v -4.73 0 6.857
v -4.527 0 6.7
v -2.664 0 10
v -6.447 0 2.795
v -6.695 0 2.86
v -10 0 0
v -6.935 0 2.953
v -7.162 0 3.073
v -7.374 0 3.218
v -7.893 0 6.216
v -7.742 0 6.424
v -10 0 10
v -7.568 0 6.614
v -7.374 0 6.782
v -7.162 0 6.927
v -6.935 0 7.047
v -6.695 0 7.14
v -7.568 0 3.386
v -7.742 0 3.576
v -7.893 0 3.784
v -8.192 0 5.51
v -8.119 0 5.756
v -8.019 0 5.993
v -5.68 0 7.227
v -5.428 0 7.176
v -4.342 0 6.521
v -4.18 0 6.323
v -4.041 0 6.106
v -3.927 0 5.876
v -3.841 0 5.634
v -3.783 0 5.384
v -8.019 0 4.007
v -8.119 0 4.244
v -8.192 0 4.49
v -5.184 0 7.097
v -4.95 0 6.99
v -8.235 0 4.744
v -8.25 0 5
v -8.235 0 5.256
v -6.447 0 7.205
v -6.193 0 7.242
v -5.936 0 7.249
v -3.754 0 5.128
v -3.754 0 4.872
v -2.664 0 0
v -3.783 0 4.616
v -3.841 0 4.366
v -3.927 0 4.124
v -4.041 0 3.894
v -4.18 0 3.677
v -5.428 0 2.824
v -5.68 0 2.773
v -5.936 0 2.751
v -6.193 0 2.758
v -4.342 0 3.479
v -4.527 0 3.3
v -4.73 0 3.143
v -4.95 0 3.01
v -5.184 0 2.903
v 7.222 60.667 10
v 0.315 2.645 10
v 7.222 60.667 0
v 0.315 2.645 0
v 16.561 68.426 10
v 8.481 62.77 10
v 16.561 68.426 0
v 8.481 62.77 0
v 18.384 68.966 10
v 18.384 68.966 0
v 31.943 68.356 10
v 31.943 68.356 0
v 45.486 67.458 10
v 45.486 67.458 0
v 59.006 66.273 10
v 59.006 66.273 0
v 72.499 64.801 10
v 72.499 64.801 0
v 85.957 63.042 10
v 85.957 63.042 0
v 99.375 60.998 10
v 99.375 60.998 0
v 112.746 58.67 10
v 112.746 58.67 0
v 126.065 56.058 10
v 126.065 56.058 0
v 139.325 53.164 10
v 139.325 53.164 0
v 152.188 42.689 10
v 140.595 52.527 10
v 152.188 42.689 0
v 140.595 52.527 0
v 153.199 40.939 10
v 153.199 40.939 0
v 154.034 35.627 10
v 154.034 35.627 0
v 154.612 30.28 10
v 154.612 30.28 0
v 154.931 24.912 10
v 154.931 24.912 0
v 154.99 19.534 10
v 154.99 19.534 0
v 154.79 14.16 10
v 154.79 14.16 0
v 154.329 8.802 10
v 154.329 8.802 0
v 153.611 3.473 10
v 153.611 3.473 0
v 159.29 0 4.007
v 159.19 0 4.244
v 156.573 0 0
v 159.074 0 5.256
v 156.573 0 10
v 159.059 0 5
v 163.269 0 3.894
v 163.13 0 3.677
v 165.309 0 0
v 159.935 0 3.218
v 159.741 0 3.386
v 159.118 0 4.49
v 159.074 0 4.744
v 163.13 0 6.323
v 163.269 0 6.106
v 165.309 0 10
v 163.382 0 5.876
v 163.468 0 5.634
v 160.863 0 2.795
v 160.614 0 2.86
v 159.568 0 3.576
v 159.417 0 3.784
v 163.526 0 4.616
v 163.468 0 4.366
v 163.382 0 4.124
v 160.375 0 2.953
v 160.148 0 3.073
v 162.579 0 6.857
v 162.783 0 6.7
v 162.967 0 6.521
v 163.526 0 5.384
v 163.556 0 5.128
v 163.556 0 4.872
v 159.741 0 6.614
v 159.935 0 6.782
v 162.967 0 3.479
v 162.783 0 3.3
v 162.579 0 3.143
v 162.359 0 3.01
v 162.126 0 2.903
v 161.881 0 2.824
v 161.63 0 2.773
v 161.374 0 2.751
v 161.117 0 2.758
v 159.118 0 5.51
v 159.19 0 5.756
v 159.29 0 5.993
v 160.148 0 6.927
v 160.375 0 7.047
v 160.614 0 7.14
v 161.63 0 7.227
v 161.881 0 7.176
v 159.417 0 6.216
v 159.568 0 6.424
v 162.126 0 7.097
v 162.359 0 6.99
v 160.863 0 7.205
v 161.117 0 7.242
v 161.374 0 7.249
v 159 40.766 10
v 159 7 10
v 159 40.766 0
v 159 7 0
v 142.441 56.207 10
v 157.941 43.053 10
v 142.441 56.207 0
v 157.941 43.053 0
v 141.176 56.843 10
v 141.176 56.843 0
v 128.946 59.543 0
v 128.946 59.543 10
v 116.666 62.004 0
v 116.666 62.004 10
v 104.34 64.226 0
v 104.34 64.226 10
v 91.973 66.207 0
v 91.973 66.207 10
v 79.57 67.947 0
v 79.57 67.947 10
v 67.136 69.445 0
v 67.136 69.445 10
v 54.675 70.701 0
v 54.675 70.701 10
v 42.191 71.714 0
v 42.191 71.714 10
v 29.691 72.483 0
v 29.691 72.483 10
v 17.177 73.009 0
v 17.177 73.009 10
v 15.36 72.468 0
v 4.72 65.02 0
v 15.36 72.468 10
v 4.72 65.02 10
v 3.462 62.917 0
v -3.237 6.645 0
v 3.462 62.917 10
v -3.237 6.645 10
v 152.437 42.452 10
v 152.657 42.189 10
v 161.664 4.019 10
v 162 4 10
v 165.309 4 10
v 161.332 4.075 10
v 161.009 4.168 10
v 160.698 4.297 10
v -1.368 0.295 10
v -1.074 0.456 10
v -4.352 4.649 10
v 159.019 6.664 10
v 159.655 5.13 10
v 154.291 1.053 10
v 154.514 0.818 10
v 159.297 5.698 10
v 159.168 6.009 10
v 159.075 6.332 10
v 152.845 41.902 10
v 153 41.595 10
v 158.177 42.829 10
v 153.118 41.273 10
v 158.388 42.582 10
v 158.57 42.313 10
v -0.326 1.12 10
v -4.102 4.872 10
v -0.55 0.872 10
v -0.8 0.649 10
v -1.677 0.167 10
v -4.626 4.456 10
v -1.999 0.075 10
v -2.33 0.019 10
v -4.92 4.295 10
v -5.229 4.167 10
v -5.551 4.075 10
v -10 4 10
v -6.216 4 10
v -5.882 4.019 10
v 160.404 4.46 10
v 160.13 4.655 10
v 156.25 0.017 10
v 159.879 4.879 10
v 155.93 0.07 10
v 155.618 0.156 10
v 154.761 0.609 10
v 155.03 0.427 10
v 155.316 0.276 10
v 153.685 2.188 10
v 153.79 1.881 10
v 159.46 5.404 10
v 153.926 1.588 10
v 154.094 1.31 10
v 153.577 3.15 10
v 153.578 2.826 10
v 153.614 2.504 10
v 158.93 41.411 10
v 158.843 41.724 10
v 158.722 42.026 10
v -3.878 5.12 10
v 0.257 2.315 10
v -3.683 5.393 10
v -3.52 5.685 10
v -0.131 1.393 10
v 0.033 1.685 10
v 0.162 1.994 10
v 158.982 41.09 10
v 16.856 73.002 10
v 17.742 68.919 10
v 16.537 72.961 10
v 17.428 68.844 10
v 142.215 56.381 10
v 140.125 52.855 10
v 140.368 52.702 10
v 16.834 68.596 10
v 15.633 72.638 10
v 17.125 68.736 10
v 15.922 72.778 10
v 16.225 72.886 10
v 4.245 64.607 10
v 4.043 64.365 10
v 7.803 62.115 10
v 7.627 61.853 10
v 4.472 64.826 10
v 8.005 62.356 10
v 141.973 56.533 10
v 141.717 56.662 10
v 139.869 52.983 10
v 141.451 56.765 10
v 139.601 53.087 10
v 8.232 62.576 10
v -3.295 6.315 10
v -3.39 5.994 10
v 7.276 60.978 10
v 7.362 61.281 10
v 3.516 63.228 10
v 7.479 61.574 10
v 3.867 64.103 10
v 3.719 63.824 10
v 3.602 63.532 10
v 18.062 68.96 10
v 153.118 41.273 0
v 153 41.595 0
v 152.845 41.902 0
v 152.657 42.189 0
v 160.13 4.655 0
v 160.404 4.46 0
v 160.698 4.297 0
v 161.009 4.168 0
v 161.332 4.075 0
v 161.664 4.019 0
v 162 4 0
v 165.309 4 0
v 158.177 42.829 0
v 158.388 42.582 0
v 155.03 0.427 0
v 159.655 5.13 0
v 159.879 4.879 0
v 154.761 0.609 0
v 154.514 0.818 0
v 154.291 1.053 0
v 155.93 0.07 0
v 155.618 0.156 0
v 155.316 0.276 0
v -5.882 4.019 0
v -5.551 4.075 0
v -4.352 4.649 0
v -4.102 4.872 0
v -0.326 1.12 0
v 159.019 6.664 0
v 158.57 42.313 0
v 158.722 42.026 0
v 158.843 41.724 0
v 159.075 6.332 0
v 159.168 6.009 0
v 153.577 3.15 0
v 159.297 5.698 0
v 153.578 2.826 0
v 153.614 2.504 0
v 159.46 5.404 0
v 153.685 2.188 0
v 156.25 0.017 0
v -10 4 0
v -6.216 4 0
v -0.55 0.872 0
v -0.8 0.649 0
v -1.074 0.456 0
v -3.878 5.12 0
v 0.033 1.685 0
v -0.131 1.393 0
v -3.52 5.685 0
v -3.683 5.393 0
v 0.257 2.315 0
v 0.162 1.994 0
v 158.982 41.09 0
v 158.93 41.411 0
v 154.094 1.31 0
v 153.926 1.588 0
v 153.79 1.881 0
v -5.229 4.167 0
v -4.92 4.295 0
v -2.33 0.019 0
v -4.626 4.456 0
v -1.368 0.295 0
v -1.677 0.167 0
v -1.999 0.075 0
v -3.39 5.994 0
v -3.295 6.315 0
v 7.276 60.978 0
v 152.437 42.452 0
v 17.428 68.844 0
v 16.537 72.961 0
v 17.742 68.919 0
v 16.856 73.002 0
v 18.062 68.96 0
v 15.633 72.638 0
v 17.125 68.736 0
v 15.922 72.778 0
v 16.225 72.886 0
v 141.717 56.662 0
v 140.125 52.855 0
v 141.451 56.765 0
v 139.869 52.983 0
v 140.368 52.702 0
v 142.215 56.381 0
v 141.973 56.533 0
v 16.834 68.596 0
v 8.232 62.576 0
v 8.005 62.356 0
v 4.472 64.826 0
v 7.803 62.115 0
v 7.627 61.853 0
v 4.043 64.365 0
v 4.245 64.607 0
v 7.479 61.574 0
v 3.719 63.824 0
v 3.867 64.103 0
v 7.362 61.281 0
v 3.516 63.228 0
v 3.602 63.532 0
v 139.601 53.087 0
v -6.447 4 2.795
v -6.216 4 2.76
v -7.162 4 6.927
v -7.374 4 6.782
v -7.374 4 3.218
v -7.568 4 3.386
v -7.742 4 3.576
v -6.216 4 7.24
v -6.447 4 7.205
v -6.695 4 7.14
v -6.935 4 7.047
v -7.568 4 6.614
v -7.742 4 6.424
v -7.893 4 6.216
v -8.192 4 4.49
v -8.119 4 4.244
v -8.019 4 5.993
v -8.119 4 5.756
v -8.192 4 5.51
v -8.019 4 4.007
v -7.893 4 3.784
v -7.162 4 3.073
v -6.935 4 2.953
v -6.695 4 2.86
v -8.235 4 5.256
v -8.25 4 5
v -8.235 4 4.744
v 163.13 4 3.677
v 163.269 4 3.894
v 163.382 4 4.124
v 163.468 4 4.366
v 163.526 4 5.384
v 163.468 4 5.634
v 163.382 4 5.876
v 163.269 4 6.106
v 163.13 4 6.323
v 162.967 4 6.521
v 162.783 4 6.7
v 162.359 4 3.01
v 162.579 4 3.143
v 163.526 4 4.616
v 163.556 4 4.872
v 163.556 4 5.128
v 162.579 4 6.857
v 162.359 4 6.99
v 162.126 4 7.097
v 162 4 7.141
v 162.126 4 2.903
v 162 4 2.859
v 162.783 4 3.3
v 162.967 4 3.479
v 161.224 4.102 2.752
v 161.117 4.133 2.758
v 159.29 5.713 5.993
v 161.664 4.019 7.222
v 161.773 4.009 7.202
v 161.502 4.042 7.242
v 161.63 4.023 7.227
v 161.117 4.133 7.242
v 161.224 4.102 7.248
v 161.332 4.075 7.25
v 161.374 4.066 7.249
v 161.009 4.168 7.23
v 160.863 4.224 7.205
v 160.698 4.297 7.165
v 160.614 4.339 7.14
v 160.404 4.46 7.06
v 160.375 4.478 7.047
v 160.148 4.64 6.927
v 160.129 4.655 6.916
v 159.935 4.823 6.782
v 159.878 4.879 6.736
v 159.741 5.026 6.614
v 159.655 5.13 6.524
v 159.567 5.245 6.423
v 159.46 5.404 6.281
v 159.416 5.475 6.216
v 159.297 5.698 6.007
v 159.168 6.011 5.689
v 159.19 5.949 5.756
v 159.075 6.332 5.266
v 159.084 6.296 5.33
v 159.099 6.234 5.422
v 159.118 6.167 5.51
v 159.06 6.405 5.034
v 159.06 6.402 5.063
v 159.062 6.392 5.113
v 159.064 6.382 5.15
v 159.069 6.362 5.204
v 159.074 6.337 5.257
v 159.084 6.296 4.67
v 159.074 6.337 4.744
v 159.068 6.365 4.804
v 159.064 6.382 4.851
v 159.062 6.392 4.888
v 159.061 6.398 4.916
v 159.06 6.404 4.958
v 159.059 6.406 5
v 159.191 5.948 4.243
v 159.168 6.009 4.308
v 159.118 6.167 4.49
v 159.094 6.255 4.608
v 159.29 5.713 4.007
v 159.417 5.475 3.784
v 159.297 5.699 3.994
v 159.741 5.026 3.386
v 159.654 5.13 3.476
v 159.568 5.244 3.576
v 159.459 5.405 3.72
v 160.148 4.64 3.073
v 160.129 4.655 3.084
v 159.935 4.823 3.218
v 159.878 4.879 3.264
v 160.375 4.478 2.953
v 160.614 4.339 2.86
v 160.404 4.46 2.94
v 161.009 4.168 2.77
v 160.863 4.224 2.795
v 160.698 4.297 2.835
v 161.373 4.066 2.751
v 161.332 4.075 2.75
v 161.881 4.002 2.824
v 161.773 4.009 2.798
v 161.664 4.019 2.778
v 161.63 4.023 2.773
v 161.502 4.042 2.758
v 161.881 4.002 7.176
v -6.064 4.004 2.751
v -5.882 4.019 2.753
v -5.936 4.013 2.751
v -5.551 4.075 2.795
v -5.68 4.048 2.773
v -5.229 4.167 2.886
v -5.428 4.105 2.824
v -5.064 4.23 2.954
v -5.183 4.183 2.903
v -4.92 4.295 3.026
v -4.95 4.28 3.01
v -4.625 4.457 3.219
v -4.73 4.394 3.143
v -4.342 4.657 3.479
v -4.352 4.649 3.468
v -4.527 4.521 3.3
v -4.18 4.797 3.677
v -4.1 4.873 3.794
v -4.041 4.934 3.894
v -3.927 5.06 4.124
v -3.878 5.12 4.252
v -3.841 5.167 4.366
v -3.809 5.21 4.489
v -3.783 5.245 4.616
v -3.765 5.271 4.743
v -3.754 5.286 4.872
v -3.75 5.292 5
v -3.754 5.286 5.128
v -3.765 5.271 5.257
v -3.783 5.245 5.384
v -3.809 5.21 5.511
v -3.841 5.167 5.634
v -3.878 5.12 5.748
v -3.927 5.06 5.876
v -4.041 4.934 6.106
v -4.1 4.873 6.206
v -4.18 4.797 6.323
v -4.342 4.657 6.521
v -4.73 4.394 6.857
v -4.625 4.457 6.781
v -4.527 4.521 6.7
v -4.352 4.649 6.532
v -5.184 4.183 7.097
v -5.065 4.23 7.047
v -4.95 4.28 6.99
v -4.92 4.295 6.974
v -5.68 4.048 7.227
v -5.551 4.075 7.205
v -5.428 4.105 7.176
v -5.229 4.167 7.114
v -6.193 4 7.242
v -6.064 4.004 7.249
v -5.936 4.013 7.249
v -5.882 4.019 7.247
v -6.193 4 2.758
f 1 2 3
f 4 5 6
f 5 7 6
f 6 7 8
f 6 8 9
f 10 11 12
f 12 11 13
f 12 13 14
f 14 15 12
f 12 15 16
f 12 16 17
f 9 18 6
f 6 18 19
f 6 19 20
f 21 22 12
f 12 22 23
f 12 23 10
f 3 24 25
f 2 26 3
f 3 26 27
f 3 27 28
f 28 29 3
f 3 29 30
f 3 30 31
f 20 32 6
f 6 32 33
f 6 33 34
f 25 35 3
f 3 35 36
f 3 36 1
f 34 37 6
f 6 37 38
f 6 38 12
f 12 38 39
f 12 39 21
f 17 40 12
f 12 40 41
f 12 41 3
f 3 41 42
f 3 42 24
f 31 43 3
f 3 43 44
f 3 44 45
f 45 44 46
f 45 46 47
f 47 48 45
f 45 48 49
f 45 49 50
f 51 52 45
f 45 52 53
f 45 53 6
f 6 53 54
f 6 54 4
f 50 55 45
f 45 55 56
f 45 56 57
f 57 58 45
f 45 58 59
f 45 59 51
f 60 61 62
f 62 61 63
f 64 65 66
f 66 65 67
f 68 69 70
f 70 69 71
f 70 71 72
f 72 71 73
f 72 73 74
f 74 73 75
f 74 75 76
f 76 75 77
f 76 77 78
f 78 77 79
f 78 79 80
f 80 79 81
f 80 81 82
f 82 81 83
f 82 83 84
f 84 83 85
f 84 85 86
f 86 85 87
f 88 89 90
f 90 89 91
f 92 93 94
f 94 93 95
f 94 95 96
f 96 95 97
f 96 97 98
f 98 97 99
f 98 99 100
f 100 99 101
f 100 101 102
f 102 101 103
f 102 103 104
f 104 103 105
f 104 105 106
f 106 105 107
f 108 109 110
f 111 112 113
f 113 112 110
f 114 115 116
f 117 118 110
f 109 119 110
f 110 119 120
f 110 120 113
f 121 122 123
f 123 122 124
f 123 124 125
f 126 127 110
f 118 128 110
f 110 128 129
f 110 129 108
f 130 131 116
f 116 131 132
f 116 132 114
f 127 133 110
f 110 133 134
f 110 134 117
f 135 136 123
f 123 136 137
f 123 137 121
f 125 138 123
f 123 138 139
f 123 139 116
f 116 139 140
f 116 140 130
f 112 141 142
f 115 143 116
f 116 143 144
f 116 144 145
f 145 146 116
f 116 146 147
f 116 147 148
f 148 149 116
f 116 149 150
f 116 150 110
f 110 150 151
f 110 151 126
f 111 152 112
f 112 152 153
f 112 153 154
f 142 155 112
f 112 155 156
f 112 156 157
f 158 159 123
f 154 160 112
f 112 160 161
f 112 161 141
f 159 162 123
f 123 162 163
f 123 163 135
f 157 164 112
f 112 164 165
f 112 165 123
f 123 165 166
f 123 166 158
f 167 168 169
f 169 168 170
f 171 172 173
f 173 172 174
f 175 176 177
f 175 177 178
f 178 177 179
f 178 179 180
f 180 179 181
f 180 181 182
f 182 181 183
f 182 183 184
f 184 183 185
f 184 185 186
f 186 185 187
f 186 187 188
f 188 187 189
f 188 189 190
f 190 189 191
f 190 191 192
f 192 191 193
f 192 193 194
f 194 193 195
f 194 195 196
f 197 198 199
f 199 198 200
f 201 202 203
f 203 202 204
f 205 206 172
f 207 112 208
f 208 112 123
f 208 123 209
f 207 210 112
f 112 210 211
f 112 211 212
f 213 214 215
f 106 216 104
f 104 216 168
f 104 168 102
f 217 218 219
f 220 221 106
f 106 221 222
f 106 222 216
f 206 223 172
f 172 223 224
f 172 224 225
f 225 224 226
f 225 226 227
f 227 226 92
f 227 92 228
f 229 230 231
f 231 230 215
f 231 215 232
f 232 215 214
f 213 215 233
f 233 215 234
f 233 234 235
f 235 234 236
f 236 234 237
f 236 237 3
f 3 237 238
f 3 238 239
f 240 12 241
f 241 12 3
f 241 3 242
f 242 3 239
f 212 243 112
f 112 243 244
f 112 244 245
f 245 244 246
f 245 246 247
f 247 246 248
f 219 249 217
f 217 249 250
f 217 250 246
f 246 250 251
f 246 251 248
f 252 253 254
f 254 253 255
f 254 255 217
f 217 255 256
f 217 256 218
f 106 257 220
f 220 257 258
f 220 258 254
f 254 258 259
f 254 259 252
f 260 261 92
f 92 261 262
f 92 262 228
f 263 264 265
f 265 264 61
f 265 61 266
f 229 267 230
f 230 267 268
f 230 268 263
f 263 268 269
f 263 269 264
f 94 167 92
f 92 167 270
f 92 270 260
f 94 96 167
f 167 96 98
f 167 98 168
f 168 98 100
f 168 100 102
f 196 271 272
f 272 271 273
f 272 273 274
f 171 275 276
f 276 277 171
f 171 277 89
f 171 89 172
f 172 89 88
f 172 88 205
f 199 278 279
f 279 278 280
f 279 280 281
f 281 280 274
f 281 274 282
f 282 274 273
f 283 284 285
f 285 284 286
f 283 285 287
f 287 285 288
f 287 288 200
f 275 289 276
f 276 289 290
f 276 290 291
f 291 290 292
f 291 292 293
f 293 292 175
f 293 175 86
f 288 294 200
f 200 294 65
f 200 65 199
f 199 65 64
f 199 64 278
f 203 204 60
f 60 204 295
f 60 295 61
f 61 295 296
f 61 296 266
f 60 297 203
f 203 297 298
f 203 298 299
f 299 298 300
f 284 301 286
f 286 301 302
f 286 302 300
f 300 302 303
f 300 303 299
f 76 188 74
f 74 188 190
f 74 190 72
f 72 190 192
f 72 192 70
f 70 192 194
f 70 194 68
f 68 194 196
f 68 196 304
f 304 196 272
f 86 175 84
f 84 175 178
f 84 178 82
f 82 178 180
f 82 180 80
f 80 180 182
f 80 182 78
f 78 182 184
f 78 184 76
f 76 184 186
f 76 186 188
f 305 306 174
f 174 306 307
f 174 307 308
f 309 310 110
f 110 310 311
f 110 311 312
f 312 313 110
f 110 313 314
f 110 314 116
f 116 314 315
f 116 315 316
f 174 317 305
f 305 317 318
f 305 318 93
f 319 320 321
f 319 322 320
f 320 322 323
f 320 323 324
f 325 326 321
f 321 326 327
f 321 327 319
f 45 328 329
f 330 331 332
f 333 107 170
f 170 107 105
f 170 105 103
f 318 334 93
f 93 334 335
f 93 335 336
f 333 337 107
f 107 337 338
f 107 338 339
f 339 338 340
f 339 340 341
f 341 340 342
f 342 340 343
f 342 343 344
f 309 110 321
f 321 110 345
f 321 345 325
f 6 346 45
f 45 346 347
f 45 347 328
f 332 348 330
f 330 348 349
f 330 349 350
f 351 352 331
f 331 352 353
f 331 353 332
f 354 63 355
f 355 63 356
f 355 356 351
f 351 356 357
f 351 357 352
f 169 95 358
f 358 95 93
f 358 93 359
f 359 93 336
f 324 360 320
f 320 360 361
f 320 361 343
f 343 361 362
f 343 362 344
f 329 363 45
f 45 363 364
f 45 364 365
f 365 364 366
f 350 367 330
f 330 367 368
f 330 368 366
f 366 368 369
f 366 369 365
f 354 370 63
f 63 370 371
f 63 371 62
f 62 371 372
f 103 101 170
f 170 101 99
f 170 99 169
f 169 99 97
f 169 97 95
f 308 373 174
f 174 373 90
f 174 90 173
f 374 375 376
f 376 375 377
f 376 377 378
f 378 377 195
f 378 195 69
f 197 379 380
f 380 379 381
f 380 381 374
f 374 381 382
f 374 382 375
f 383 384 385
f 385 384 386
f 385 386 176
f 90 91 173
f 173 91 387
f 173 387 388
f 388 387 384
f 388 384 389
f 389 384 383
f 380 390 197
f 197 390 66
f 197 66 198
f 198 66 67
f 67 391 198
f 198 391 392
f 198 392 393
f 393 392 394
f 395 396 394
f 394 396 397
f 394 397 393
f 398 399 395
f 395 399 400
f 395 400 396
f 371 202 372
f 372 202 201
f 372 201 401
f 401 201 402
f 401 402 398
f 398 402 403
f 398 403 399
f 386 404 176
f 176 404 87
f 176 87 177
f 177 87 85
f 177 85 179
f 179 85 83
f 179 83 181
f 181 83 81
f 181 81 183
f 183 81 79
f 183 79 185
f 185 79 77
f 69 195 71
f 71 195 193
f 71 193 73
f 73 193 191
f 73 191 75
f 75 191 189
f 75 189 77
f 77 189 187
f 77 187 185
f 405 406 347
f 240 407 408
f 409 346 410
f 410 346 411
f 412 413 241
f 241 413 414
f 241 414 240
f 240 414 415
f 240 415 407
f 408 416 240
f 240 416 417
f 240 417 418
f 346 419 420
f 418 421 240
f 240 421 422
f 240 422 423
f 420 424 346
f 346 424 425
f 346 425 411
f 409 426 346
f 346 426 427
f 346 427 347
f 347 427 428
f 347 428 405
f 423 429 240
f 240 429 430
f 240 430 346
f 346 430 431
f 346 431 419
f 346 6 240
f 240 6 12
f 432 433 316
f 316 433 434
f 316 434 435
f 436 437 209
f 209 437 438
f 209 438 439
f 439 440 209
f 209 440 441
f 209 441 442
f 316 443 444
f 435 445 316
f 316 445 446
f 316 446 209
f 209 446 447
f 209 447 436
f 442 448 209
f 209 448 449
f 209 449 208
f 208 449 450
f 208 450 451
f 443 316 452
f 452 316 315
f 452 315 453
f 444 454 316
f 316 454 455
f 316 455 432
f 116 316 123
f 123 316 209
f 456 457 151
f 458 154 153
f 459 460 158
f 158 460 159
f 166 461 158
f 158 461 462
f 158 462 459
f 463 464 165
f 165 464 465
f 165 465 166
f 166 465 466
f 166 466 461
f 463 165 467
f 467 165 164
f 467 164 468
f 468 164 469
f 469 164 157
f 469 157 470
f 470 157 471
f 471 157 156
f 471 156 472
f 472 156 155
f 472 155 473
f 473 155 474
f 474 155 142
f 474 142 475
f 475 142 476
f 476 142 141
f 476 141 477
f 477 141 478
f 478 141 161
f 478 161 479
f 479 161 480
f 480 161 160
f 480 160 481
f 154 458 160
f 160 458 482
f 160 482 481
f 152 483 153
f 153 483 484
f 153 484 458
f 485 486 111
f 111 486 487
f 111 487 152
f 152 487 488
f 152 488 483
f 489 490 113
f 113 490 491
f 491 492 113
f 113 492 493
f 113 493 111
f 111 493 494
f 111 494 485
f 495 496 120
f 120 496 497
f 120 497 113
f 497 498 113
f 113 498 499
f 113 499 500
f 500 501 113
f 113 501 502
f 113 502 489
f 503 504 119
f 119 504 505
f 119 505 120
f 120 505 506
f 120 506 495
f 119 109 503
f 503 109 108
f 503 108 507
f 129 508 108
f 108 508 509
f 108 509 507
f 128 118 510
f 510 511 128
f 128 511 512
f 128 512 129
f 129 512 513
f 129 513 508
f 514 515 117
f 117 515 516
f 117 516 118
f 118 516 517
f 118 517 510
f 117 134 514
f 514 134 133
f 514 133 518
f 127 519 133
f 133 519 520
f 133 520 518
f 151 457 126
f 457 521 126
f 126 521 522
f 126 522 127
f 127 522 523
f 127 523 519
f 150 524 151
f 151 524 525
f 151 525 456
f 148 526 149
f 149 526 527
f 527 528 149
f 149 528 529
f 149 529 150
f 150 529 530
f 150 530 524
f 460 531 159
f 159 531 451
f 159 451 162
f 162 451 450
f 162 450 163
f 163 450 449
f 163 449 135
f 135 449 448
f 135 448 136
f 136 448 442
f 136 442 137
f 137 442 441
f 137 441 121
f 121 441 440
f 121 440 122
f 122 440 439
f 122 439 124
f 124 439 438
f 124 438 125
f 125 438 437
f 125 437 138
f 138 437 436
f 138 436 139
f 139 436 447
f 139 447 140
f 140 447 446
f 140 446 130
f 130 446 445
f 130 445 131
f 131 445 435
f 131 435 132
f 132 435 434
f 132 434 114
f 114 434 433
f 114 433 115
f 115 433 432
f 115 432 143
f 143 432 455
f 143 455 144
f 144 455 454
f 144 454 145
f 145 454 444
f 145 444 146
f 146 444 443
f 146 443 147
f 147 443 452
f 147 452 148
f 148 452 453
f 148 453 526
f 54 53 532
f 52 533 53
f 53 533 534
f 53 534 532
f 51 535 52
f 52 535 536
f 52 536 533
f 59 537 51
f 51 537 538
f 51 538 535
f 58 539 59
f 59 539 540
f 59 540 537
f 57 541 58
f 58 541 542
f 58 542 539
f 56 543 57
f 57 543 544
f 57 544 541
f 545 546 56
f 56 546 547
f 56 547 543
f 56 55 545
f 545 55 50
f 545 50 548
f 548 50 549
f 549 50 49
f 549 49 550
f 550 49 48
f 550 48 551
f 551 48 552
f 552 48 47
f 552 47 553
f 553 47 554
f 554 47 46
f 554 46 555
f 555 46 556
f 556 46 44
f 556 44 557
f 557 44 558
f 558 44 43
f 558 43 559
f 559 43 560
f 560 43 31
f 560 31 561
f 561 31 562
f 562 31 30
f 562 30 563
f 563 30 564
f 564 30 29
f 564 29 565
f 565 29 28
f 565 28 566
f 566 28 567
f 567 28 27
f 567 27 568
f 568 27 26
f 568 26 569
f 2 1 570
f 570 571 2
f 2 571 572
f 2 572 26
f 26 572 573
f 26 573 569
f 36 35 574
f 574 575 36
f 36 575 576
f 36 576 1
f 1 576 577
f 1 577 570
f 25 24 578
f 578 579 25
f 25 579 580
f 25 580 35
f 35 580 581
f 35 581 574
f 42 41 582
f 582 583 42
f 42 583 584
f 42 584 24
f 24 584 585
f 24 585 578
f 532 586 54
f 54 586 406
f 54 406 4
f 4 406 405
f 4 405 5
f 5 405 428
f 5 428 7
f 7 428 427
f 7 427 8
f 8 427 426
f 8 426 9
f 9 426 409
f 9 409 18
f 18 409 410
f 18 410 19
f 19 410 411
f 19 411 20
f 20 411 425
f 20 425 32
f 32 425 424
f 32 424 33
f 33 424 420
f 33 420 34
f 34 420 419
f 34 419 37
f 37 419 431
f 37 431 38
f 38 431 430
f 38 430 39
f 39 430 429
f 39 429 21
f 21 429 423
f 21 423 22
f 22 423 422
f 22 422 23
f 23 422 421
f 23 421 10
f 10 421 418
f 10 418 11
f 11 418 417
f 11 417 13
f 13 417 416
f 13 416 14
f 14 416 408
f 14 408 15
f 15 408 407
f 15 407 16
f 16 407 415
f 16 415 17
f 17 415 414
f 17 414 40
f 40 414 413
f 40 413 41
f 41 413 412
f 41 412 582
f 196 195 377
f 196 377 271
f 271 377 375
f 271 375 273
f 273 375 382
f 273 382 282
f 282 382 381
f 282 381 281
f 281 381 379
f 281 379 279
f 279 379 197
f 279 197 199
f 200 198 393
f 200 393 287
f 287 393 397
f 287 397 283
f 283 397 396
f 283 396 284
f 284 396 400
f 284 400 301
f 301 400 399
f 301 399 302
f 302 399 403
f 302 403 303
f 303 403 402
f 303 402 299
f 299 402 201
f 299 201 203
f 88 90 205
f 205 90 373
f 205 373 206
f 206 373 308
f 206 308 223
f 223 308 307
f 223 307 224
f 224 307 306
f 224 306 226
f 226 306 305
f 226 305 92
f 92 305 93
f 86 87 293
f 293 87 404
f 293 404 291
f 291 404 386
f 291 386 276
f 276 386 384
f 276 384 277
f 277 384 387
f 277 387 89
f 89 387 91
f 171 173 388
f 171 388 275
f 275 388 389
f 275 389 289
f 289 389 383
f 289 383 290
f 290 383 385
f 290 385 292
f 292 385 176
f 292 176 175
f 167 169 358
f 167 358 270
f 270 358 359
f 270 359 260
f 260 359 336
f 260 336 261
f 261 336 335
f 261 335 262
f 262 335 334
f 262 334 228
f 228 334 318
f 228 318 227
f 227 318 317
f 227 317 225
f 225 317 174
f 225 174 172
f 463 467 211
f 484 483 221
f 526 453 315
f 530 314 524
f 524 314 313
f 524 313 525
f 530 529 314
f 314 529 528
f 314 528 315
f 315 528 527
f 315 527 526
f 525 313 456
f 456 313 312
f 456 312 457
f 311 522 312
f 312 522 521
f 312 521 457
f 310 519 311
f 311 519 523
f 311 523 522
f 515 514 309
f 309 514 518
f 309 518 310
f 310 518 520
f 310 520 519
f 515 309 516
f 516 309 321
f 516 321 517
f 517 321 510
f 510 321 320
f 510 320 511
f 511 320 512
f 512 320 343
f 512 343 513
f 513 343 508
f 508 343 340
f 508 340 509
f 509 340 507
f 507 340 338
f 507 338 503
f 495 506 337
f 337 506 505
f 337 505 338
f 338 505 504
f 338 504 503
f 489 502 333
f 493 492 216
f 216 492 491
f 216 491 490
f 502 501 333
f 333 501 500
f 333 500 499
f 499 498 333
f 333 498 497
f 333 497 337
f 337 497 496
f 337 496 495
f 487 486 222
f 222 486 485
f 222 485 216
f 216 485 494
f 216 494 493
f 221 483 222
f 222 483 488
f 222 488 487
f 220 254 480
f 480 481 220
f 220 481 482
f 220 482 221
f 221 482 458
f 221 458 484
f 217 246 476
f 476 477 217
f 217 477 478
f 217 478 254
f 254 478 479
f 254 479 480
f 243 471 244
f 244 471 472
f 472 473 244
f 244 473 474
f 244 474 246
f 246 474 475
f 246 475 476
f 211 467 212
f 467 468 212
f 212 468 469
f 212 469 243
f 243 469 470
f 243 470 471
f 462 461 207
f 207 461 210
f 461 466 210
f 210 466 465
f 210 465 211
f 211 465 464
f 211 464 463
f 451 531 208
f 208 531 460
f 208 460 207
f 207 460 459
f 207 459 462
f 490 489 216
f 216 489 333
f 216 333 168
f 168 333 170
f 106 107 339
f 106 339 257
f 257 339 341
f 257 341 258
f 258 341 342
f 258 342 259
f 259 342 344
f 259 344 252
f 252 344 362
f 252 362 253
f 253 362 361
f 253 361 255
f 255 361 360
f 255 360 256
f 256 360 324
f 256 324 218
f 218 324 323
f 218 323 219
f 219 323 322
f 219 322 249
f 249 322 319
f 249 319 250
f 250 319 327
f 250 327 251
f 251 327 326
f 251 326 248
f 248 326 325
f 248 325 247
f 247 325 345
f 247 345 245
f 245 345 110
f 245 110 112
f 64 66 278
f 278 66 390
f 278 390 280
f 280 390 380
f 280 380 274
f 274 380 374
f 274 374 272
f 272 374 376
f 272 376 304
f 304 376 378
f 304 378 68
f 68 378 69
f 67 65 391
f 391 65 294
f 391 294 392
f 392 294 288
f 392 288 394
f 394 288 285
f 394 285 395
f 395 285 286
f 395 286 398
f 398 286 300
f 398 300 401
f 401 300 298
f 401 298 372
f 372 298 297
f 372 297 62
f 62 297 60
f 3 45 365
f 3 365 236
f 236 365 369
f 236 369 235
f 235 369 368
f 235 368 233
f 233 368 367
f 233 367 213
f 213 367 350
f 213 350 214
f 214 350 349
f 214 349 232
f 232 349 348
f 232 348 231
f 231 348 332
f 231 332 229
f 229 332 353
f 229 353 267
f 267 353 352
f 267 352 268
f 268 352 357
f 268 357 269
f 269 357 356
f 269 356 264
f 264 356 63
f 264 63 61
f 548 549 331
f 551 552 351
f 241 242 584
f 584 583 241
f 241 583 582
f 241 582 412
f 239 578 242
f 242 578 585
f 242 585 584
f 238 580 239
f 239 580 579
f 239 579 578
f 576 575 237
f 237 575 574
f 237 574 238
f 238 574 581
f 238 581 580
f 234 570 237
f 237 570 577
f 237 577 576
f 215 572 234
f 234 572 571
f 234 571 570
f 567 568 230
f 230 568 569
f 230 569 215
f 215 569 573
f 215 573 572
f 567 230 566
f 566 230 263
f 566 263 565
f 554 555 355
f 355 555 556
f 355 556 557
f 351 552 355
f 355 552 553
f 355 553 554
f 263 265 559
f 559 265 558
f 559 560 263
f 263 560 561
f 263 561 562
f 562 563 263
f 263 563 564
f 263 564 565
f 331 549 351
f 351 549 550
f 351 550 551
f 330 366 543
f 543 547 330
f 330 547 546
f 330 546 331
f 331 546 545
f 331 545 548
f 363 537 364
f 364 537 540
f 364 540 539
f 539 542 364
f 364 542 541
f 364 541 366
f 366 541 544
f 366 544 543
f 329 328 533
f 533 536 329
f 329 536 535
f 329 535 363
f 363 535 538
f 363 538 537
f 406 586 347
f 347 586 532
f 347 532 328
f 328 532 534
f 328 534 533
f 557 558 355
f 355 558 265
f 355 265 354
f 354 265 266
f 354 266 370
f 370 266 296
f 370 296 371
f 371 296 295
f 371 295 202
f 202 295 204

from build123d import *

# Parameters (mm, degrees)
BOSS_EXTRU_1_DEPTH           = 10
ESQUISSE2_W                  = 10
ESQUISSE2_H                  = 4
BOSS_EXTRU_2_DEPTH           = 10
ENL_V_MAT_EXTRU_1_DEPTH      = 180.426169252
ENL_V_MAT_EXTRU_1_DEPTH_BACK = 180.426169252
ESQUISSE3_R                  = 2.25
CONG_1_START                 = -1
CONG_1_DEPTH                 = 12
CONG_1_START_2               = 7.2500001
CONG_1_2_DEPTH               = 2.7499999
CONG_1_3_DEPTH               = 2.749998557
CONG_1_START_3               = 1.0274
CONG_1_4_DEPTH               = 7.9164
CONG_1_START_4               = 2.749998557
CONG_1_5_DEPTH               = 4.500001543
CONG_1_START_5               = 4
CONG_1_6_OUTLINE_R           = 2.25
CONG_1_6_DEPTH               = 2.645361331


with BuildPart() as part:
    # Esquisse1 → Boss.-Extru.1 (new body)
    with BuildSketch(Plane.XY):
        with BuildLine():
            Line((0, 0), (7.380952381, 62))
            Line((7.380952381, 62), (17.380952381, 69))
            ThreePointArc((17.380952381, 69), (79.097781351, 63.974797541), (140.038518603, 53))
            Line((140.038518603, 53), (153, 42))
            ThreePointArc((153, 42), (155, 21), (153, 0))
            Line((153, 0), (159, 0))
            Line((159, 0), (159, 42.15430335))
            Line((159, 42.15430335), (156.65156229, 44.147348282))
            Line((156.65156229, 44.147348282), (141.886380642, 56.678091733))
            ThreePointArc((141.886380642, 56.678091733), (79.436142512, 67.964522606), (16.177522156, 73.040221089))
            Line((16.177522156, 73.040221089), (3.620610131, 64.250382671))
            Line((3.620610131, 64.250382671), (-3.971953097, 0.472851559))
            Line((-3.971953097, 0.472851559), (-3.971953097, 0))
            Line((-3.971953097, 0), (0, 0))
        make_face()
    extrude(amount=BOSS_EXTRU_1_DEPTH)

    # Esquisse2 → Boss.-Extru.2 (add)
    with BuildSketch(Plane.XY.offset(10)):
        with Locations((-5, 2)):
            Rectangle(ESQUISSE2_W, ESQUISSE2_H)
        Polygon((155.309401077, 4), (153, 0), (165.309401077, 0), (165.309401077, 4), align=None)
    extrude(amount=-BOSS_EXTRU_2_DEPTH)

    # Esquisse3 → Enlèv. mat.-Extru.1 (cut, two sides: drawn at the far end of the back side and taken through both)
    with BuildSketch(Plane(origin=(0, 4, 0), x_dir=(1, 0, 0), z_dir=(0, 1, 0)).offset(-ENL_V_MAT_EXTRU_1_DEPTH_BACK)):
        with Locations(Location((-6, -5, 0), (0, 0, 180))):
            Circle(ESQUISSE3_R)
        with Locations(Location((161.309401077, -5, 0), (0, 0, 180))):
            Circle(ESQUISSE3_R)
    extrude(amount=ENL_V_MAT_EXTRU_1_DEPTH + ENL_V_MAT_EXTRU_1_DEPTH_BACK, mode=Mode.SUBTRACT)

    # Congé1: read off the stored shape, not the designer's step
    # Congé1 outline → Congé1 (cut)
    with BuildSketch(Plane.XY.offset(CONG_1_START)):
        with BuildLine():
            Line((16.177522156, 73.040221089), (15.360062357, 72.46799923))
            ThreePointArc((15.360062357, 72.46799923), (16.22479158, 72.885690349), (17.177199346, 73.00874297))
            ThreePointArc((17.177199346, 73.00874297), (16.677366871, 73.02467639), (16.177522156, 73.040221089))
        make_face()
        with BuildLine():
            ThreePointArc((3.461901996, 62.917234337), (3.866631155, 64.103151006), (4.720479785, 65.020291429))
            Line((4.720479785, 65.020291429), (3.620610131, 64.250382671))
            Line((3.620610131, 64.250382671), (3.461901996, 62.917234337))
        make_face()
        with BuildLine():
            Line((159, 42.15430335), (157.941176471, 43.052893447))
            ThreePointArc((157.941176471, 43.052893447), (158.722455639, 42.025825276), (159, 40.7655732))
            Line((159, 40.7655732), (159, 42.15430335))
        make_face()
        with BuildLine():
            ThreePointArc((141.886380642, 56.678091733), (141.530964579, 56.760515154), (141.175501808, 56.842736905))
            ThreePointArc((141.175501808, 56.842736905), (141.846525936, 56.600679011), (142.441431075, 56.207037956))
            Line((142.441431075, 56.207037956), (141.886380642, 56.678091733))
        make_face()
        with BuildLine():
            Line((0, 0), (0.314923968, 2.645361331))
            ThreePointArc((0.314923968, 2.645361331), (-0.672046378, 0.756797378), (-2.664040855, 0))
            Line((-2.664040855, 0), (0, 0))
        make_face()
        with BuildLine():
            ThreePointArc((156.573147005, 0), (154.290829859, 1.052943646), (153.610613604, 3.472647702))
            ThreePointArc((153.610613604, 3.472647702), (153.319065292, 1.733904625), (153, 0))
            Line((153, 0), (156.573147005, 0))
        make_face()
    extrude(amount=CONG_1_DEPTH, mode=Mode.SUBTRACT)

    # Cong_1 2 outline → Cong_1 2 (add)
    with BuildSketch(Plane.XY.offset(CONG_1_START_2)):
        with BuildLine():
            Line((-3.552054473, 4), (-3.237130505, 6.645361331))
            ThreePointArc((-3.237130505, 6.645361331), (-4.224100851, 4.756797378), (-6.216095328, 4))
            Line((-6.216095328, 4), (-3.552054473, 4))
        make_face()
        with BuildLine():
            ThreePointArc((162, 4), (159.878679656, 4.878679656), (159, 7))
            Line((159, 7), (159, 4))
            Line((159, 4), (162, 4))
        make_face()
        with BuildLine():
            Line((153, 42), (152.188329288, 42.688839304))
            ThreePointArc((152.188329288, 42.688839304), (152.845168439, 41.901623997), (153.198575067, 40.939205498))
            ThreePointArc((153.198575067, 40.939205498), (153.100573868, 41.469843544), (153, 42))
        make_face()
        with BuildLine():
            ThreePointArc((7.222244246, 60.666851666), (7.626973405, 61.852768335), (8.480822035, 62.769908758))
            Line((8.480822035, 62.769908758), (7.380952381, 62))
            Line((7.380952381, 62), (7.222244246, 60.666851666))
        make_face()
        with BuildLine():
            ThreePointArc((16.560647408, 68.425786519), (17.428384152, 68.844370904), (18.384055662, 68.96632134))
            ThreePointArc((18.384055662, 68.96632134), (17.882510633, 68.983357604), (17.380952381, 69))
            Line((17.380952381, 69), (16.560647408, 68.425786519))
        make_face()
        with BuildLine():
            ThreePointArc((139.325020621, 53.164109281), (139.998459684, 52.922050789), (140.595410438, 52.527383484))
            Line((140.595410438, 52.527383484), (140.038518603, 53))
            ThreePointArc((140.038518603, 53), (139.681793114, 53.08215682), (139.325020621, 53.164109281))
        make_face()
    extrude(amount=CONG_1_2_DEPTH)

    # Cong_1 3 outline → Cong_1 3 (add)
    with BuildSketch(Plane.XY):
        with BuildLine():
            Line((-3.552054473, 4), (-3.237130505, 6.645361331))
            ThreePointArc((-3.237130505, 6.645361331), (-4.224100851, 4.756797378), (-6.216095328, 4))
            Line((-6.216095328, 4), (-3.552054473, 4))
        make_face()
        with BuildLine():
            ThreePointArc((162, 4), (159.878679656, 4.878679656), (159, 7))
            Line((159, 7), (159, 4))
            Line((159, 4), (162, 4))
        make_face()
        with BuildLine():
            Line((153, 42), (152.188329288, 42.688839304))
            ThreePointArc((152.188329288, 42.688839304), (152.845168439, 41.901623997), (153.198575067, 40.939205498))
            ThreePointArc((153.198575067, 40.939205498), (153.100573868, 41.469843544), (153, 42))
        make_face()
        with BuildLine():
            ThreePointArc((7.222244246, 60.666851666), (7.626973405, 61.852768335), (8.480822035, 62.769908758))
            Line((8.480822035, 62.769908758), (7.380952381, 62))
            Line((7.380952381, 62), (7.222244246, 60.666851666))
        make_face()
        with BuildLine():
            ThreePointArc((16.560647408, 68.425786519), (17.428384152, 68.844370904), (18.384055662, 68.96632134))
            ThreePointArc((18.384055662, 68.96632134), (17.882510633, 68.983357604), (17.380952381, 69))
            Line((17.380952381, 69), (16.560647408, 68.425786519))
        make_face()
        with BuildLine():
            ThreePointArc((139.325020621, 53.164109281), (139.998459684, 52.922050789), (140.595410438, 52.527383484))
            Line((140.595410438, 52.527383484), (140.038518603, 53))
            ThreePointArc((140.038518603, 53), (139.681793114, 53.08215682), (139.325020621, 53.164109281))
        make_face()
    extrude(amount=CONG_1_3_DEPTH)

    # Cong_1 4 outline → Cong_1 4 (add)
    with BuildSketch(Plane.XY.offset(CONG_1_START_3)):
        with BuildLine():
            Line((153, 42), (152.188329288, 42.688839304))
            ThreePointArc((152.188329288, 42.688839304), (152.845168439, 41.901623997), (153.198575067, 40.939205498))
            ThreePointArc((153.198575067, 40.939205498), (153.100573868, 41.469843544), (153, 42))
        make_face()
        with BuildLine():
            ThreePointArc((7.222244246, 60.666851666), (7.626973405, 61.852768335), (8.480822035, 62.769908758))
            Line((8.480822035, 62.769908758), (7.380952381, 62))
            Line((7.380952381, 62), (7.222244246, 60.666851666))
        make_face()
        with BuildLine():
            ThreePointArc((16.560647408, 68.425786519), (17.428384152, 68.844370904), (18.384055662, 68.96632134))
            ThreePointArc((18.384055662, 68.96632134), (17.882510633, 68.983357604), (17.380952381, 69))
            Line((17.380952381, 69), (16.560647408, 68.425786519))
        make_face()
        with BuildLine():
            ThreePointArc((139.325020621, 53.164109281), (139.998459684, 52.922050789), (140.595410438, 52.527383484))
            Line((140.595410438, 52.527383484), (140.038518603, 53))
            ThreePointArc((140.038518603, 53), (139.681793114, 53.08215682), (139.325020621, 53.164109281))
        make_face()
    extrude(amount=CONG_1_4_DEPTH)

    # Cong_1 5 outline → Cong_1 5 (add)
    with BuildSketch(Plane.XY.offset(CONG_1_START_4)):
        with BuildLine():
            Line((159, 4), (162, 4))
            ThreePointArc((162, 4), (159.878679656, 4.878679656), (159, 7))
            Line((159, 7), (159, 4))
        make_face()
        with BuildLine():
            ThreePointArc((-3.237130505, 6.645361331), (-4.224100851, 4.756797378), (-6.216095328, 4))
            Line((-6.216095328, 4), (-3.552054473, 4))
            Line((-3.552054473, 4), (-3.237130505, 6.645361331))
        make_face()
    extrude(amount=CONG_1_5_DEPTH)

    # Cong_1 6 outline → Cong_1 6 (cut)
    with BuildSketch(Plane(origin=(0, 0, 0), x_dir=(1, 0, 0), z_dir=(0, 1, 0)).offset(CONG_1_START_5)):
        with Locations((161.309401077, -5)):
            Circle(CONG_1_6_OUTLINE_R)
        with Locations((-6, -5)):
            Circle(CONG_1_6_OUTLINE_R)
    extrude(amount=CONG_1_6_DEPTH, mode=Mode.SUBTRACT)


solid = part.part
